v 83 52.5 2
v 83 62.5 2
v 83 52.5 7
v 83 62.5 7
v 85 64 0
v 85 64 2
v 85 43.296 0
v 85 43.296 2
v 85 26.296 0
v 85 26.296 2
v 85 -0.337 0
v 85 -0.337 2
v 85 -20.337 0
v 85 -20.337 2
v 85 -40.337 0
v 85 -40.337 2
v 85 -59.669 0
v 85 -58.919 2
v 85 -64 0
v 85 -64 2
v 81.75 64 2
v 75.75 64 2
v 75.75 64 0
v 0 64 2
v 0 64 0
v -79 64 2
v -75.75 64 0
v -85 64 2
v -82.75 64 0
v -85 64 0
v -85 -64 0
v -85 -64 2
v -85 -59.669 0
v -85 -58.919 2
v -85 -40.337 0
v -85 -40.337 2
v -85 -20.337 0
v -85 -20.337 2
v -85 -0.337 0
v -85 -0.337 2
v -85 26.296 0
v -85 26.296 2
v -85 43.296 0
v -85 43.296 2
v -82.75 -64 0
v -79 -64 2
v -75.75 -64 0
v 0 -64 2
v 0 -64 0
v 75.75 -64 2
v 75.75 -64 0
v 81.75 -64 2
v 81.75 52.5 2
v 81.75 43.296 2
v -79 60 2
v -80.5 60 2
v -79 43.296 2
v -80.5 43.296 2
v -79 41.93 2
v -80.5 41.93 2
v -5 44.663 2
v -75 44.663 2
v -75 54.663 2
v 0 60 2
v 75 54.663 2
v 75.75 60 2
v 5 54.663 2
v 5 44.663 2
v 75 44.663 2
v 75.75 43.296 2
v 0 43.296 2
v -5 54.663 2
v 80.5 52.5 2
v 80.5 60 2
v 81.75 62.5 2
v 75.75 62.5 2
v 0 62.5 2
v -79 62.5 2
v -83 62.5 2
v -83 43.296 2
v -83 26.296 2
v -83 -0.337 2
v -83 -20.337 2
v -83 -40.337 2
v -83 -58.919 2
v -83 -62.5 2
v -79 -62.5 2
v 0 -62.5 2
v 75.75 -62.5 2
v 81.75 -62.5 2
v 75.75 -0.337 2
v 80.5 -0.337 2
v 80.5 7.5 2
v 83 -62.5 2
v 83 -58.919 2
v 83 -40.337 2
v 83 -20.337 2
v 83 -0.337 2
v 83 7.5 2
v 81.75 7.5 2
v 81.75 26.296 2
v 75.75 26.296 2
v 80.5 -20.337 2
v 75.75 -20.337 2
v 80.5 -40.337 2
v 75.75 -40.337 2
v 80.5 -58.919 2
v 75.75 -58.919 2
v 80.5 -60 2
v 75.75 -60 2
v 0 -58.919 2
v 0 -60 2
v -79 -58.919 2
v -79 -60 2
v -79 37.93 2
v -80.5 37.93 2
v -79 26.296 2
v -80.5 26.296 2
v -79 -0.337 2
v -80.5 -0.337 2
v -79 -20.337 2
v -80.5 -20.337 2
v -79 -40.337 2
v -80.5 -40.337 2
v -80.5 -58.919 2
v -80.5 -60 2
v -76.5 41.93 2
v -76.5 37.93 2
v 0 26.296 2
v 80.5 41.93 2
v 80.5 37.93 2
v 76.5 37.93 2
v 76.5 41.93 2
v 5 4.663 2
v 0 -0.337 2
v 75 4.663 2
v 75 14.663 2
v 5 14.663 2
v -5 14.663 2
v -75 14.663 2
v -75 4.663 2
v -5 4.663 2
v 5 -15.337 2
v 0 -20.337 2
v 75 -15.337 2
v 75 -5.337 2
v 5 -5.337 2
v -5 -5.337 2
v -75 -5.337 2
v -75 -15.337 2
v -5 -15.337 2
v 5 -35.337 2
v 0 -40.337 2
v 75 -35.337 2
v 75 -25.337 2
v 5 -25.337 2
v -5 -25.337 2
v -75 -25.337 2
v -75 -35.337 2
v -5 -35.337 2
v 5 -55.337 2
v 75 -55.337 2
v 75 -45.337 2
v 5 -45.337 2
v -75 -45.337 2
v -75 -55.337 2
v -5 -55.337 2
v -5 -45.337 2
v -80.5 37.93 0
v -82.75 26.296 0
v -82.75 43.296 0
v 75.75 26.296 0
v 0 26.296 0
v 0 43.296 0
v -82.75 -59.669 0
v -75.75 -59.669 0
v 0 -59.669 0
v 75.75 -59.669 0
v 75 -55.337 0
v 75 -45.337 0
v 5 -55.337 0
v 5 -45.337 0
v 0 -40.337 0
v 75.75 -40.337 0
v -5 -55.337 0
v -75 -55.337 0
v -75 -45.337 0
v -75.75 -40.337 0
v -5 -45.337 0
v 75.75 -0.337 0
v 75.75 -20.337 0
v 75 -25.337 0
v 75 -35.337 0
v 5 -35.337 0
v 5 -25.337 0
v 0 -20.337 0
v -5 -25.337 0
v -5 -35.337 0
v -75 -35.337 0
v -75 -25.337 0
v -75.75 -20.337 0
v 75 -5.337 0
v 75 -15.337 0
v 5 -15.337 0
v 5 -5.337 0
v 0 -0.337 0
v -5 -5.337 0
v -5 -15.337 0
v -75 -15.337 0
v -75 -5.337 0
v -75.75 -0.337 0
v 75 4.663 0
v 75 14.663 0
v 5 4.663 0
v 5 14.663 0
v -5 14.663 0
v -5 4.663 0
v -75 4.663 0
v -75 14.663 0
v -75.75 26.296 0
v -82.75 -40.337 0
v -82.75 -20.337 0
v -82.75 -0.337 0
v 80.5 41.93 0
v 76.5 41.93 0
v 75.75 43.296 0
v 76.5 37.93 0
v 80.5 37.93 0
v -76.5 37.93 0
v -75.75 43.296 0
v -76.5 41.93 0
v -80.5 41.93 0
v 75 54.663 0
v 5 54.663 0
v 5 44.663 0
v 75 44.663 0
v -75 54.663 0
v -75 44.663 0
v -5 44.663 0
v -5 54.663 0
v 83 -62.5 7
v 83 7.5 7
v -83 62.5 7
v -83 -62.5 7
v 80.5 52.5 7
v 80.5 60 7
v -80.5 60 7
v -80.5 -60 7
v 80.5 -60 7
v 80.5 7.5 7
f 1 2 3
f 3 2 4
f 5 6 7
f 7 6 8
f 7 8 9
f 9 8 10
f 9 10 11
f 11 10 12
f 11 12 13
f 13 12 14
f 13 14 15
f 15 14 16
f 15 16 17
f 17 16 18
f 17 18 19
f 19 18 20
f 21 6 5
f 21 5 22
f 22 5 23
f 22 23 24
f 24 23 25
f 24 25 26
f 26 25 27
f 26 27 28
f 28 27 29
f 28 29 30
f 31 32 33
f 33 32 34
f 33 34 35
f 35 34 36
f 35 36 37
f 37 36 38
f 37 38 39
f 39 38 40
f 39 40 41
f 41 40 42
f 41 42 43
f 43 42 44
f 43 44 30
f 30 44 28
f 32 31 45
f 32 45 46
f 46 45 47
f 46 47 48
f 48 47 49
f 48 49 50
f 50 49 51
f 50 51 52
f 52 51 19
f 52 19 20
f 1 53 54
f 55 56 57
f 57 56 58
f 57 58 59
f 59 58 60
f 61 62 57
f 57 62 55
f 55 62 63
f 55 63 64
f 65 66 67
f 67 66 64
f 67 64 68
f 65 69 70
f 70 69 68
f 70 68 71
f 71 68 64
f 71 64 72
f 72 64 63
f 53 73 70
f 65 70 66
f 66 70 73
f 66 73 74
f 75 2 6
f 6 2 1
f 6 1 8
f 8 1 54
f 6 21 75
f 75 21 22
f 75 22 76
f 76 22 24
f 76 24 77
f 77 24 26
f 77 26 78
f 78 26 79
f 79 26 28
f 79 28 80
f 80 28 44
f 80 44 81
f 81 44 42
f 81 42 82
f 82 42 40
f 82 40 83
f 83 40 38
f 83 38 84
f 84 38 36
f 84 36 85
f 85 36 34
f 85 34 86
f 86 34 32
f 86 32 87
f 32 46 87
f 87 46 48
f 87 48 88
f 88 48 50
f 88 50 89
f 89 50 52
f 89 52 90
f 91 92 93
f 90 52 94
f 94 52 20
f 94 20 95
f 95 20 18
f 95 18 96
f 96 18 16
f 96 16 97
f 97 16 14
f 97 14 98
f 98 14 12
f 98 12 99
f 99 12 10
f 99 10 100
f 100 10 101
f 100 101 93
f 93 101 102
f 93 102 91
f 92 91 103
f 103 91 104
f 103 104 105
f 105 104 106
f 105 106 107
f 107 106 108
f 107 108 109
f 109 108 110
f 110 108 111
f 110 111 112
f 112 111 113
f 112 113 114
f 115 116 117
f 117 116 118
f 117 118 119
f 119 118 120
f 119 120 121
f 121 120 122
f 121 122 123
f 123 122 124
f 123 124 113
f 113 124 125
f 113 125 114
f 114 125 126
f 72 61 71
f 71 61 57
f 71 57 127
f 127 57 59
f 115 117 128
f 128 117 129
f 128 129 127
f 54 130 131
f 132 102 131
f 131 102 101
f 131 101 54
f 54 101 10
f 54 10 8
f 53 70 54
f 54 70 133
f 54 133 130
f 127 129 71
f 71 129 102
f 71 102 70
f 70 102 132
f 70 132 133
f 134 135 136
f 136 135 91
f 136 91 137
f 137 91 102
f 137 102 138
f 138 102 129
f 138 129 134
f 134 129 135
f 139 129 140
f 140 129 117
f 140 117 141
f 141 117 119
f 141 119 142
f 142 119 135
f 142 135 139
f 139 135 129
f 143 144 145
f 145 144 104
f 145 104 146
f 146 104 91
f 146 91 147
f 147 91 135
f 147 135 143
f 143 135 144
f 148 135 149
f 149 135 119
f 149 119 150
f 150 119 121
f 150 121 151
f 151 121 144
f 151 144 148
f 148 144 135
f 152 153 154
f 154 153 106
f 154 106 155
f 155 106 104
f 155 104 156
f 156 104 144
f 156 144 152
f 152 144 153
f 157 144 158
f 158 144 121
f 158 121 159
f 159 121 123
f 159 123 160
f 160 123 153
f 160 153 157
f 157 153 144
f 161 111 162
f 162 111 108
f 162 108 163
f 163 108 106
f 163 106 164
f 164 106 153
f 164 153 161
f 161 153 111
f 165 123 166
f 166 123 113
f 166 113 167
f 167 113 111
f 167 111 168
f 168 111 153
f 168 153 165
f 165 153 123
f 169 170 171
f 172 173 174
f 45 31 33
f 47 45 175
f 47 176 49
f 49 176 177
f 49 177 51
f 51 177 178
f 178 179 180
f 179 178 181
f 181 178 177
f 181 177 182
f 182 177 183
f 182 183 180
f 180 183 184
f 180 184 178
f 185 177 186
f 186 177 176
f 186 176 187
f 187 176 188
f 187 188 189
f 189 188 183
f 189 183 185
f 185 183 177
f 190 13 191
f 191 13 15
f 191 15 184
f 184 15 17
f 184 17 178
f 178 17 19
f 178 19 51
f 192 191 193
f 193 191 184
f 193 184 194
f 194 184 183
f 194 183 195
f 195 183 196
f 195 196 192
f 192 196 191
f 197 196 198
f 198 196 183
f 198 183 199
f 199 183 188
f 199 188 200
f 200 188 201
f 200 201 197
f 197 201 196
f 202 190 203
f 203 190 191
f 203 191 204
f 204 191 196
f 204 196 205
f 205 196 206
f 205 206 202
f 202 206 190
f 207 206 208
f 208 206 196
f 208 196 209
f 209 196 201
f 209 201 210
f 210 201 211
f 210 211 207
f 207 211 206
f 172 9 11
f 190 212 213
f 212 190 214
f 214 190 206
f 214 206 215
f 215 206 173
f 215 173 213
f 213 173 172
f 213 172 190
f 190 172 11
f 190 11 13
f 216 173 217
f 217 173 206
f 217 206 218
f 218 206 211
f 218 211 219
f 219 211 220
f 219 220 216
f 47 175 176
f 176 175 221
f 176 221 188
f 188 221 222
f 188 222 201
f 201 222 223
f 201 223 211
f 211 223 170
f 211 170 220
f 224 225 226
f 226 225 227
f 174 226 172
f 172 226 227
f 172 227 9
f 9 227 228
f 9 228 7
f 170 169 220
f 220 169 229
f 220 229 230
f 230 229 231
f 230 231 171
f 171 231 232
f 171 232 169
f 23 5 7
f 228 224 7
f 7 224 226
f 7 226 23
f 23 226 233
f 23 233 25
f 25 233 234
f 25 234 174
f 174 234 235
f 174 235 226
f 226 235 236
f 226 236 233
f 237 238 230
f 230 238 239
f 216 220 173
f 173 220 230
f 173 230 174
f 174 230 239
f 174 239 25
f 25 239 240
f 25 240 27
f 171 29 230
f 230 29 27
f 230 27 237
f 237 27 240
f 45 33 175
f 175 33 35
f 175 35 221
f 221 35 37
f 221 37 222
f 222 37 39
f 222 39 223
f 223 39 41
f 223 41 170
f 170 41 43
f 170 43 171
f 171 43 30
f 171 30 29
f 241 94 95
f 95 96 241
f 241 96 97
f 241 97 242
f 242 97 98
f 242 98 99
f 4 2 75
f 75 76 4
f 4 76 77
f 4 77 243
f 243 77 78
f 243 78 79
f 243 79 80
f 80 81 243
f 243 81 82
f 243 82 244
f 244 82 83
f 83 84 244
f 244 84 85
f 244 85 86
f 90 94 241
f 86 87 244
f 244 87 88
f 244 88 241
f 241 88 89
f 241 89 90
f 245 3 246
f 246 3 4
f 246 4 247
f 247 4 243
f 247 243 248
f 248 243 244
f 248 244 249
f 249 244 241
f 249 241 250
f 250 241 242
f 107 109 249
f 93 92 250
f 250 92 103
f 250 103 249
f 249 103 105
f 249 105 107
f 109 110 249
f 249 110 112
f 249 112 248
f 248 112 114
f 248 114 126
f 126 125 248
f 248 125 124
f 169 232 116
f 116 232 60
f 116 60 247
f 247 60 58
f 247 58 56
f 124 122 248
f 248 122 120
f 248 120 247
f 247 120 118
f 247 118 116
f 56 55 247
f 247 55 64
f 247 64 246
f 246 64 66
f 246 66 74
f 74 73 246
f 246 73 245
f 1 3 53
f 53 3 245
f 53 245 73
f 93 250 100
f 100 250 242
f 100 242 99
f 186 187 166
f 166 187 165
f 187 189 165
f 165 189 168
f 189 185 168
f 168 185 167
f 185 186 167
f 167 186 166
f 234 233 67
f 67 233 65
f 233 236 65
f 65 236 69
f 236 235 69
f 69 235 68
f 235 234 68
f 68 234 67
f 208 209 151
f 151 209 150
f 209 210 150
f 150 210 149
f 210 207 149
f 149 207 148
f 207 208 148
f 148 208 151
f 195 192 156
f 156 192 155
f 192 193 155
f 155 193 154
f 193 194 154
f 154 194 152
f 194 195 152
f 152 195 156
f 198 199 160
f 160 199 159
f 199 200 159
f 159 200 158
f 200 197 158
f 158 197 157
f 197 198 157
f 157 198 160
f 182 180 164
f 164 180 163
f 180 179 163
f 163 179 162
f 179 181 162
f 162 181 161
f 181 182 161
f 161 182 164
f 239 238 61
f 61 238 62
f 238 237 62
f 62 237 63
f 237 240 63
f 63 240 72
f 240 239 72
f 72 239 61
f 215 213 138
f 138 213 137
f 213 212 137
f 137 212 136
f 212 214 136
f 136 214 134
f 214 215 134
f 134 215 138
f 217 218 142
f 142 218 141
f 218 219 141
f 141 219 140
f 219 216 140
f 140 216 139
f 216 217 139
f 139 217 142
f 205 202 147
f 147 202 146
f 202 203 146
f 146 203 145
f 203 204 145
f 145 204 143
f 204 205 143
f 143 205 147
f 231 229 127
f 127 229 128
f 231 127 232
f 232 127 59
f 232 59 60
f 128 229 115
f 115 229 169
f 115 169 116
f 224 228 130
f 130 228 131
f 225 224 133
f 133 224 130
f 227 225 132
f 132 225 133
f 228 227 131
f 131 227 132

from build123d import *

# Parameters (mm, degrees)
SKETCH_3_W          = 170
SKETCH_3_H          = 128
EXTRUDE_2_DEPTH     = 2
SKETCH_4_W          = 166
SKETCH_4_H          = 125
EXTRUDE_3_DEPTH     = 5
CUT_EXTRUDE_1_DEPTH = 5
SKETCH_7_W          = 70
SKETCH_7_H          = 10
CUT_EXTRUDE_3_DEPTH = 107.517604179
SKETCH_6_W          = 4
SKETCH_6_H          = 4
CUT_EXTRUDE_4_DEPTH = 107.630202101


with BuildPart() as part:
    # 草图3 → 凸台-拉伸2 (new body)
    with BuildSketch(Plane.XY):
        Rectangle(SKETCH_3_W, SKETCH_3_H)
    extrude(amount=EXTRUDE_2_DEPTH)

    # 草图4 → 凸台-拉伸3 (add)
    with BuildSketch(Plane.XY.offset(2)):
        Rectangle(SKETCH_4_W, SKETCH_4_H)
    extrude(amount=EXTRUDE_3_DEPTH)

    # 草图5 → 切除-拉伸1 (cut)
    with BuildSketch(Plane.XY.offset(7)):
        Polygon((-80.5, 60), (80.5, 60), (80.5, 52.5), (83, 52.5), (83, 7.5), (80.5, 7.5), (80.5, -60), (-80.5, -60), align=None)
    extrude(amount=-CUT_EXTRUDE_1_DEPTH, mode=Mode.SUBTRACT)

    # 草图7 → 切除-拉伸3 (cut, through all)
    with BuildSketch(Plane.XY.offset(2)):
        with Locations((-40, -50.337089846)):
            Rectangle(SKETCH_7_W, SKETCH_7_H)
        with Locations((40, -50.337089846)):
            Rectangle(SKETCH_7_W, SKETCH_7_H)
        with Locations((-40, -30.337089846)):
            Rectangle(SKETCH_7_W, SKETCH_7_H)
        with Locations((40, -30.337089846)):
            Rectangle(SKETCH_7_W, SKETCH_7_H)
        with Locations((-40, -10.337089846)):
            Rectangle(SKETCH_7_W, SKETCH_7_H)
        with Locations((40, -10.337089846)):
            Rectangle(SKETCH_7_W, SKETCH_7_H)
        with Locations((-40, 9.662910154)):
            Rectangle(SKETCH_7_W, SKETCH_7_H)
        with Locations((40, 9.662910154)):
            Rectangle(SKETCH_7_W, SKETCH_7_H)
        with Locations((-40, 49.662910154)):
            Rectangle(SKETCH_7_W, SKETCH_7_H)
        with Locations((40, 49.662910154)):
            Rectangle(SKETCH_7_W, SKETCH_7_H)
    extrude(amount=-CUT_EXTRUDE_3_DEPTH, mode=Mode.SUBTRACT)

    # 草图6 → 切除-拉伸4 (cut, through all)
    with BuildSketch(Plane(origin=(0, 0, 0), x_dir=(-1, 0, 0), z_dir=(0, 0, -1))):
        with Locations((-78.5, 39.93)):
            Rectangle(SKETCH_6_W, SKETCH_6_H)
        with Locations((78.5, 39.93)):
            Rectangle(SKETCH_6_W, SKETCH_6_H)
    extrude(amount=-CUT_EXTRUDE_4_DEPTH, mode=Mode.SUBTRACT)


solid = part.part
